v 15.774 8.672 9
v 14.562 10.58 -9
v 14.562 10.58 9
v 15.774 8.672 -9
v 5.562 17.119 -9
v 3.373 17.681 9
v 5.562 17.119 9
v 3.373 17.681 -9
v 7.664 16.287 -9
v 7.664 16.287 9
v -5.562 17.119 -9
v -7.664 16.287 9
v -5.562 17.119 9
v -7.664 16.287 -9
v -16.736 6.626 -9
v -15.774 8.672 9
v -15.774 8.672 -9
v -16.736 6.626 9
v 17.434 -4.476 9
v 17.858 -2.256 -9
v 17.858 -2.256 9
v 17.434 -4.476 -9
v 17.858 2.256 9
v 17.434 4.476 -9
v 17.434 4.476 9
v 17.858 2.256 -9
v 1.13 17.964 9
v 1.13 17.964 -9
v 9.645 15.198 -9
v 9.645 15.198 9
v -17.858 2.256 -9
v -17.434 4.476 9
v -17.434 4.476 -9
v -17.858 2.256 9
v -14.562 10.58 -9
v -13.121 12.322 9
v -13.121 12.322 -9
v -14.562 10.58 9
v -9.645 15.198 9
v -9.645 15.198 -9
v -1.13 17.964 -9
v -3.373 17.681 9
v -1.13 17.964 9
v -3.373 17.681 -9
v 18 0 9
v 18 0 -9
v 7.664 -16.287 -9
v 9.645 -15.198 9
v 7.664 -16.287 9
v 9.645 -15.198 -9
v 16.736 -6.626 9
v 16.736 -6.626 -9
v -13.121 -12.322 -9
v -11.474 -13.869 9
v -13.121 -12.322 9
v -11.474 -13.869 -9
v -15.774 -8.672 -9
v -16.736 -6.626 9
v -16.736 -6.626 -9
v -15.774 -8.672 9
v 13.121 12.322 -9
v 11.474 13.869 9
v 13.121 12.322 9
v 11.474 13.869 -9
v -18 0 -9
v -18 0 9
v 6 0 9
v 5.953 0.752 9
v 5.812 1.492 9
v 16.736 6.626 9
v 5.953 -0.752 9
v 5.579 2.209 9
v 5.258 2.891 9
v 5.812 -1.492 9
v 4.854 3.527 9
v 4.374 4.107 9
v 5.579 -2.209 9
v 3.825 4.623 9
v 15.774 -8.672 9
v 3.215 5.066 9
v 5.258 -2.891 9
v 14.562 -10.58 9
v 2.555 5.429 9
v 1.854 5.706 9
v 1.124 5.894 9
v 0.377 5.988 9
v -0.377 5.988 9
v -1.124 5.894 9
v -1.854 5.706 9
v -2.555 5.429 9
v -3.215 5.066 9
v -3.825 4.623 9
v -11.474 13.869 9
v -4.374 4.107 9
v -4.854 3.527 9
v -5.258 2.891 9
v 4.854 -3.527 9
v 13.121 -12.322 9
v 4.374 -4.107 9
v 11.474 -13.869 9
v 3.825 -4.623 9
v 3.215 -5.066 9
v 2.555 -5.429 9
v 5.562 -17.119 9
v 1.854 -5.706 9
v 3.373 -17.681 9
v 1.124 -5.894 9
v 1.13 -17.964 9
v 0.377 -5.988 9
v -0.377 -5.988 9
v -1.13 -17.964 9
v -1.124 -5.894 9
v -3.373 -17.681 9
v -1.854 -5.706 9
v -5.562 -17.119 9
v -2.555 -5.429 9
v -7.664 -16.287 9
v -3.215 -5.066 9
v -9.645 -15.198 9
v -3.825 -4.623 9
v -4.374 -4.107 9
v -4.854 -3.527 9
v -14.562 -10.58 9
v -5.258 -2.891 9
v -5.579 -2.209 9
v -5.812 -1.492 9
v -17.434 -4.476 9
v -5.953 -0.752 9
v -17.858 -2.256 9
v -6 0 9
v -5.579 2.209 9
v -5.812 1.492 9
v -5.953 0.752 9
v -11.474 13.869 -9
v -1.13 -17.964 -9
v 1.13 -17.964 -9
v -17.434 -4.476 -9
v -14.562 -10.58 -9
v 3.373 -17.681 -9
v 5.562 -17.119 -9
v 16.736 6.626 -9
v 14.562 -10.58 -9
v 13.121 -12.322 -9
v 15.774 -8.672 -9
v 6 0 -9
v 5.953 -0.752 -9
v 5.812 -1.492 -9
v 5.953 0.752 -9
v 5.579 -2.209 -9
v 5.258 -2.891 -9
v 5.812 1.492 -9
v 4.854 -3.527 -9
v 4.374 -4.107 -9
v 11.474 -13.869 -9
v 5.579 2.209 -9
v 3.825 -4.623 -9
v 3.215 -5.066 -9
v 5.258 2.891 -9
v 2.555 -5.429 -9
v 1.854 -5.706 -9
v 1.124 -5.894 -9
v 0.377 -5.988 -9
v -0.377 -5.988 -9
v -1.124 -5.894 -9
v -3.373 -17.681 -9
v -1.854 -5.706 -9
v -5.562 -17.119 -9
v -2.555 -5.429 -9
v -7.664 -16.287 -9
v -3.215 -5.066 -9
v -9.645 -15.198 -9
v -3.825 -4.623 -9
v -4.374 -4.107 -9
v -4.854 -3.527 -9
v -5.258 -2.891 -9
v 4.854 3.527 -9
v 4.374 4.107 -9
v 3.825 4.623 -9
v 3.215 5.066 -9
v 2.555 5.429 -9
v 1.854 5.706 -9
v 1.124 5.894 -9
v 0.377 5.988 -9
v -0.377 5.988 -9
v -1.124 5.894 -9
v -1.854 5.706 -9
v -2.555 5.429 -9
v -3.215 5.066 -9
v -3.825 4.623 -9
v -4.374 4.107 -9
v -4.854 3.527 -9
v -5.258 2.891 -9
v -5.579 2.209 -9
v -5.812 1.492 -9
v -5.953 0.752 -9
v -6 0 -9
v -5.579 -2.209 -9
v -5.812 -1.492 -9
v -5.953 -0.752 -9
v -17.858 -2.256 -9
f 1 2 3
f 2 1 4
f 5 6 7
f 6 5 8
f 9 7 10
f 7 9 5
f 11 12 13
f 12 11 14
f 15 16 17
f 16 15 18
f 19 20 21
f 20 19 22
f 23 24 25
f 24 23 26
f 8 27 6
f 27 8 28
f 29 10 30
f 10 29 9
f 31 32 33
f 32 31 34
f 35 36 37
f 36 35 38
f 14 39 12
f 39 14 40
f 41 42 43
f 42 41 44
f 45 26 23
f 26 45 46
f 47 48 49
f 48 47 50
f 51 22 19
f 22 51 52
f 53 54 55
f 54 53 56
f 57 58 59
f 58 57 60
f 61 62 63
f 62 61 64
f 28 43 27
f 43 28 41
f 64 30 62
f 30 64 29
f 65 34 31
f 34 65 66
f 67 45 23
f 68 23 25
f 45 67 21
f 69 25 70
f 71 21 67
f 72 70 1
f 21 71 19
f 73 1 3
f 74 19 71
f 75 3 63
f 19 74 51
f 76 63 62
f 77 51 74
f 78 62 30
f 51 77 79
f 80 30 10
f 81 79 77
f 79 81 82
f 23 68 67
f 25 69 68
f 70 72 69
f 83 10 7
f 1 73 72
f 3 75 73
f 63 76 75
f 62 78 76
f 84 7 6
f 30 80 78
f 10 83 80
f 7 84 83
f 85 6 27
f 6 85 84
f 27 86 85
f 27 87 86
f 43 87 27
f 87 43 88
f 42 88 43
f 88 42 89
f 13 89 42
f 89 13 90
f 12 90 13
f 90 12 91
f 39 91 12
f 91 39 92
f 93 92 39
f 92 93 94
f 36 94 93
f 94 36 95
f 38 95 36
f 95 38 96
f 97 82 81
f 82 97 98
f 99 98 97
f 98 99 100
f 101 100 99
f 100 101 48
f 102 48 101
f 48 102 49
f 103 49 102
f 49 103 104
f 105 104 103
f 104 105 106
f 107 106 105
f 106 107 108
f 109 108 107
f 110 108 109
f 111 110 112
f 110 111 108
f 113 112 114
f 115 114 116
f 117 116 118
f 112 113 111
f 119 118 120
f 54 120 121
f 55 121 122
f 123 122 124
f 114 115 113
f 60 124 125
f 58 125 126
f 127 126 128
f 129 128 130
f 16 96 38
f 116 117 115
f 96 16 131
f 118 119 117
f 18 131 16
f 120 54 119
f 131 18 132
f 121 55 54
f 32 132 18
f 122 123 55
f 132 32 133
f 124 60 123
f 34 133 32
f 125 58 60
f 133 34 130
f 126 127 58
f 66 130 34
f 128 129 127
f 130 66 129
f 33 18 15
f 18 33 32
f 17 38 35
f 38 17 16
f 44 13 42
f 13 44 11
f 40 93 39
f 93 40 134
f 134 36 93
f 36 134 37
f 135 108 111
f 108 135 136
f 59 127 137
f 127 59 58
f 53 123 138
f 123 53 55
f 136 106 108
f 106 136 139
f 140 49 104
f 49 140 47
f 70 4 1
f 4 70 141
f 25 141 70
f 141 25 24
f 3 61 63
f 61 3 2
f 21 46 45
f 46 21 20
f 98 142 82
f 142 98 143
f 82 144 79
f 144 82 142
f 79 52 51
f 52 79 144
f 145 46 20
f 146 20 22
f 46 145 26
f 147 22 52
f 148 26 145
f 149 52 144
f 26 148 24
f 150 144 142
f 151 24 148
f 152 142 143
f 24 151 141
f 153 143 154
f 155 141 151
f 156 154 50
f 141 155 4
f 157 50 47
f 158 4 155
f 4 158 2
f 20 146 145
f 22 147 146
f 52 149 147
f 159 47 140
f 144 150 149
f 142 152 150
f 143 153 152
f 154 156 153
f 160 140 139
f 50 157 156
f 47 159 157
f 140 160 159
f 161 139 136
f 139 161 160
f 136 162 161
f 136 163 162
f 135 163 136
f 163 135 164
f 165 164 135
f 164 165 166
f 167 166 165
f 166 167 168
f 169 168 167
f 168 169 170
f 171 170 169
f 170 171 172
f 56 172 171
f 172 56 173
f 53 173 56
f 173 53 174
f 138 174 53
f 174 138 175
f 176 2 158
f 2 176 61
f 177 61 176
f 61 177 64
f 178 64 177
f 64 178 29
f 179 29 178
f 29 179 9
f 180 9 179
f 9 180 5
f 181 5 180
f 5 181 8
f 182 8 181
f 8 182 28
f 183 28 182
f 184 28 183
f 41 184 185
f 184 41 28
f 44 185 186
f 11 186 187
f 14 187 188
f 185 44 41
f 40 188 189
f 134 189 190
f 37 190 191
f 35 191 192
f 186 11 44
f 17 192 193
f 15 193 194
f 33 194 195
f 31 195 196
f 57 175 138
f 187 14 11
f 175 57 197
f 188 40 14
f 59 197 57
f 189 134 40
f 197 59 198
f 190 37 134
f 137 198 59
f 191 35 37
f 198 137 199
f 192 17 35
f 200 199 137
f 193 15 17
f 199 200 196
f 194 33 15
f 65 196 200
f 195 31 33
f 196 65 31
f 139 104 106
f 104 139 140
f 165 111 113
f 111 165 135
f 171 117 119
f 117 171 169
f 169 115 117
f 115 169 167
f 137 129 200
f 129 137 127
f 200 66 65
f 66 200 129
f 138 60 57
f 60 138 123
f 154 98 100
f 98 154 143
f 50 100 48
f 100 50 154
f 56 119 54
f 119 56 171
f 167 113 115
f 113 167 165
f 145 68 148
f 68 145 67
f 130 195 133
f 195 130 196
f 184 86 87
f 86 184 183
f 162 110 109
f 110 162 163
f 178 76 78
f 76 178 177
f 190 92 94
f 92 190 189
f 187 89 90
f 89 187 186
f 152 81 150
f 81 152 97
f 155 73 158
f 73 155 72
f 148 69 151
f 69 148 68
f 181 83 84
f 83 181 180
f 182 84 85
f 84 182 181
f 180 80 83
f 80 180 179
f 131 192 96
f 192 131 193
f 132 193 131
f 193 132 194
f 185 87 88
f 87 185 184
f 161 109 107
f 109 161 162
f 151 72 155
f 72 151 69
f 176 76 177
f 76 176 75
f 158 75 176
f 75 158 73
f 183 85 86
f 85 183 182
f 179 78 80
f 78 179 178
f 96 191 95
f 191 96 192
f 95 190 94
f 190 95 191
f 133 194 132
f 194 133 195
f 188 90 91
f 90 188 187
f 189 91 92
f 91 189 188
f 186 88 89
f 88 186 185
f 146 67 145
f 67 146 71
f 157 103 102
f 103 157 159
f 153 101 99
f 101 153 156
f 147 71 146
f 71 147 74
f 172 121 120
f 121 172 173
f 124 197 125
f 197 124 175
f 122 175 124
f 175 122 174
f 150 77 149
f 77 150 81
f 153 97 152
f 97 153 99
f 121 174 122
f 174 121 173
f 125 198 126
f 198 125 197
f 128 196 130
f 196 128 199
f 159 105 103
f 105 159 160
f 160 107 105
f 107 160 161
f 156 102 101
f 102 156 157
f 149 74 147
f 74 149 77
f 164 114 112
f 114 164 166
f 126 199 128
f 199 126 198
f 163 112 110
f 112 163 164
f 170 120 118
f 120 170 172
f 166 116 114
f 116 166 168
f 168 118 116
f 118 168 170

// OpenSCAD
$fn = 50;


difference() {
	union() {
		translate(v = [0, 0, -9.0000000000]) {
			cylinder(h = 18, r = 18.0000000000);
		}
	}
	union() {
		translate(v = [0, 0, -100.0000000000]) {
			cylinder(h = 200, r = 6);
		}
	}
}
